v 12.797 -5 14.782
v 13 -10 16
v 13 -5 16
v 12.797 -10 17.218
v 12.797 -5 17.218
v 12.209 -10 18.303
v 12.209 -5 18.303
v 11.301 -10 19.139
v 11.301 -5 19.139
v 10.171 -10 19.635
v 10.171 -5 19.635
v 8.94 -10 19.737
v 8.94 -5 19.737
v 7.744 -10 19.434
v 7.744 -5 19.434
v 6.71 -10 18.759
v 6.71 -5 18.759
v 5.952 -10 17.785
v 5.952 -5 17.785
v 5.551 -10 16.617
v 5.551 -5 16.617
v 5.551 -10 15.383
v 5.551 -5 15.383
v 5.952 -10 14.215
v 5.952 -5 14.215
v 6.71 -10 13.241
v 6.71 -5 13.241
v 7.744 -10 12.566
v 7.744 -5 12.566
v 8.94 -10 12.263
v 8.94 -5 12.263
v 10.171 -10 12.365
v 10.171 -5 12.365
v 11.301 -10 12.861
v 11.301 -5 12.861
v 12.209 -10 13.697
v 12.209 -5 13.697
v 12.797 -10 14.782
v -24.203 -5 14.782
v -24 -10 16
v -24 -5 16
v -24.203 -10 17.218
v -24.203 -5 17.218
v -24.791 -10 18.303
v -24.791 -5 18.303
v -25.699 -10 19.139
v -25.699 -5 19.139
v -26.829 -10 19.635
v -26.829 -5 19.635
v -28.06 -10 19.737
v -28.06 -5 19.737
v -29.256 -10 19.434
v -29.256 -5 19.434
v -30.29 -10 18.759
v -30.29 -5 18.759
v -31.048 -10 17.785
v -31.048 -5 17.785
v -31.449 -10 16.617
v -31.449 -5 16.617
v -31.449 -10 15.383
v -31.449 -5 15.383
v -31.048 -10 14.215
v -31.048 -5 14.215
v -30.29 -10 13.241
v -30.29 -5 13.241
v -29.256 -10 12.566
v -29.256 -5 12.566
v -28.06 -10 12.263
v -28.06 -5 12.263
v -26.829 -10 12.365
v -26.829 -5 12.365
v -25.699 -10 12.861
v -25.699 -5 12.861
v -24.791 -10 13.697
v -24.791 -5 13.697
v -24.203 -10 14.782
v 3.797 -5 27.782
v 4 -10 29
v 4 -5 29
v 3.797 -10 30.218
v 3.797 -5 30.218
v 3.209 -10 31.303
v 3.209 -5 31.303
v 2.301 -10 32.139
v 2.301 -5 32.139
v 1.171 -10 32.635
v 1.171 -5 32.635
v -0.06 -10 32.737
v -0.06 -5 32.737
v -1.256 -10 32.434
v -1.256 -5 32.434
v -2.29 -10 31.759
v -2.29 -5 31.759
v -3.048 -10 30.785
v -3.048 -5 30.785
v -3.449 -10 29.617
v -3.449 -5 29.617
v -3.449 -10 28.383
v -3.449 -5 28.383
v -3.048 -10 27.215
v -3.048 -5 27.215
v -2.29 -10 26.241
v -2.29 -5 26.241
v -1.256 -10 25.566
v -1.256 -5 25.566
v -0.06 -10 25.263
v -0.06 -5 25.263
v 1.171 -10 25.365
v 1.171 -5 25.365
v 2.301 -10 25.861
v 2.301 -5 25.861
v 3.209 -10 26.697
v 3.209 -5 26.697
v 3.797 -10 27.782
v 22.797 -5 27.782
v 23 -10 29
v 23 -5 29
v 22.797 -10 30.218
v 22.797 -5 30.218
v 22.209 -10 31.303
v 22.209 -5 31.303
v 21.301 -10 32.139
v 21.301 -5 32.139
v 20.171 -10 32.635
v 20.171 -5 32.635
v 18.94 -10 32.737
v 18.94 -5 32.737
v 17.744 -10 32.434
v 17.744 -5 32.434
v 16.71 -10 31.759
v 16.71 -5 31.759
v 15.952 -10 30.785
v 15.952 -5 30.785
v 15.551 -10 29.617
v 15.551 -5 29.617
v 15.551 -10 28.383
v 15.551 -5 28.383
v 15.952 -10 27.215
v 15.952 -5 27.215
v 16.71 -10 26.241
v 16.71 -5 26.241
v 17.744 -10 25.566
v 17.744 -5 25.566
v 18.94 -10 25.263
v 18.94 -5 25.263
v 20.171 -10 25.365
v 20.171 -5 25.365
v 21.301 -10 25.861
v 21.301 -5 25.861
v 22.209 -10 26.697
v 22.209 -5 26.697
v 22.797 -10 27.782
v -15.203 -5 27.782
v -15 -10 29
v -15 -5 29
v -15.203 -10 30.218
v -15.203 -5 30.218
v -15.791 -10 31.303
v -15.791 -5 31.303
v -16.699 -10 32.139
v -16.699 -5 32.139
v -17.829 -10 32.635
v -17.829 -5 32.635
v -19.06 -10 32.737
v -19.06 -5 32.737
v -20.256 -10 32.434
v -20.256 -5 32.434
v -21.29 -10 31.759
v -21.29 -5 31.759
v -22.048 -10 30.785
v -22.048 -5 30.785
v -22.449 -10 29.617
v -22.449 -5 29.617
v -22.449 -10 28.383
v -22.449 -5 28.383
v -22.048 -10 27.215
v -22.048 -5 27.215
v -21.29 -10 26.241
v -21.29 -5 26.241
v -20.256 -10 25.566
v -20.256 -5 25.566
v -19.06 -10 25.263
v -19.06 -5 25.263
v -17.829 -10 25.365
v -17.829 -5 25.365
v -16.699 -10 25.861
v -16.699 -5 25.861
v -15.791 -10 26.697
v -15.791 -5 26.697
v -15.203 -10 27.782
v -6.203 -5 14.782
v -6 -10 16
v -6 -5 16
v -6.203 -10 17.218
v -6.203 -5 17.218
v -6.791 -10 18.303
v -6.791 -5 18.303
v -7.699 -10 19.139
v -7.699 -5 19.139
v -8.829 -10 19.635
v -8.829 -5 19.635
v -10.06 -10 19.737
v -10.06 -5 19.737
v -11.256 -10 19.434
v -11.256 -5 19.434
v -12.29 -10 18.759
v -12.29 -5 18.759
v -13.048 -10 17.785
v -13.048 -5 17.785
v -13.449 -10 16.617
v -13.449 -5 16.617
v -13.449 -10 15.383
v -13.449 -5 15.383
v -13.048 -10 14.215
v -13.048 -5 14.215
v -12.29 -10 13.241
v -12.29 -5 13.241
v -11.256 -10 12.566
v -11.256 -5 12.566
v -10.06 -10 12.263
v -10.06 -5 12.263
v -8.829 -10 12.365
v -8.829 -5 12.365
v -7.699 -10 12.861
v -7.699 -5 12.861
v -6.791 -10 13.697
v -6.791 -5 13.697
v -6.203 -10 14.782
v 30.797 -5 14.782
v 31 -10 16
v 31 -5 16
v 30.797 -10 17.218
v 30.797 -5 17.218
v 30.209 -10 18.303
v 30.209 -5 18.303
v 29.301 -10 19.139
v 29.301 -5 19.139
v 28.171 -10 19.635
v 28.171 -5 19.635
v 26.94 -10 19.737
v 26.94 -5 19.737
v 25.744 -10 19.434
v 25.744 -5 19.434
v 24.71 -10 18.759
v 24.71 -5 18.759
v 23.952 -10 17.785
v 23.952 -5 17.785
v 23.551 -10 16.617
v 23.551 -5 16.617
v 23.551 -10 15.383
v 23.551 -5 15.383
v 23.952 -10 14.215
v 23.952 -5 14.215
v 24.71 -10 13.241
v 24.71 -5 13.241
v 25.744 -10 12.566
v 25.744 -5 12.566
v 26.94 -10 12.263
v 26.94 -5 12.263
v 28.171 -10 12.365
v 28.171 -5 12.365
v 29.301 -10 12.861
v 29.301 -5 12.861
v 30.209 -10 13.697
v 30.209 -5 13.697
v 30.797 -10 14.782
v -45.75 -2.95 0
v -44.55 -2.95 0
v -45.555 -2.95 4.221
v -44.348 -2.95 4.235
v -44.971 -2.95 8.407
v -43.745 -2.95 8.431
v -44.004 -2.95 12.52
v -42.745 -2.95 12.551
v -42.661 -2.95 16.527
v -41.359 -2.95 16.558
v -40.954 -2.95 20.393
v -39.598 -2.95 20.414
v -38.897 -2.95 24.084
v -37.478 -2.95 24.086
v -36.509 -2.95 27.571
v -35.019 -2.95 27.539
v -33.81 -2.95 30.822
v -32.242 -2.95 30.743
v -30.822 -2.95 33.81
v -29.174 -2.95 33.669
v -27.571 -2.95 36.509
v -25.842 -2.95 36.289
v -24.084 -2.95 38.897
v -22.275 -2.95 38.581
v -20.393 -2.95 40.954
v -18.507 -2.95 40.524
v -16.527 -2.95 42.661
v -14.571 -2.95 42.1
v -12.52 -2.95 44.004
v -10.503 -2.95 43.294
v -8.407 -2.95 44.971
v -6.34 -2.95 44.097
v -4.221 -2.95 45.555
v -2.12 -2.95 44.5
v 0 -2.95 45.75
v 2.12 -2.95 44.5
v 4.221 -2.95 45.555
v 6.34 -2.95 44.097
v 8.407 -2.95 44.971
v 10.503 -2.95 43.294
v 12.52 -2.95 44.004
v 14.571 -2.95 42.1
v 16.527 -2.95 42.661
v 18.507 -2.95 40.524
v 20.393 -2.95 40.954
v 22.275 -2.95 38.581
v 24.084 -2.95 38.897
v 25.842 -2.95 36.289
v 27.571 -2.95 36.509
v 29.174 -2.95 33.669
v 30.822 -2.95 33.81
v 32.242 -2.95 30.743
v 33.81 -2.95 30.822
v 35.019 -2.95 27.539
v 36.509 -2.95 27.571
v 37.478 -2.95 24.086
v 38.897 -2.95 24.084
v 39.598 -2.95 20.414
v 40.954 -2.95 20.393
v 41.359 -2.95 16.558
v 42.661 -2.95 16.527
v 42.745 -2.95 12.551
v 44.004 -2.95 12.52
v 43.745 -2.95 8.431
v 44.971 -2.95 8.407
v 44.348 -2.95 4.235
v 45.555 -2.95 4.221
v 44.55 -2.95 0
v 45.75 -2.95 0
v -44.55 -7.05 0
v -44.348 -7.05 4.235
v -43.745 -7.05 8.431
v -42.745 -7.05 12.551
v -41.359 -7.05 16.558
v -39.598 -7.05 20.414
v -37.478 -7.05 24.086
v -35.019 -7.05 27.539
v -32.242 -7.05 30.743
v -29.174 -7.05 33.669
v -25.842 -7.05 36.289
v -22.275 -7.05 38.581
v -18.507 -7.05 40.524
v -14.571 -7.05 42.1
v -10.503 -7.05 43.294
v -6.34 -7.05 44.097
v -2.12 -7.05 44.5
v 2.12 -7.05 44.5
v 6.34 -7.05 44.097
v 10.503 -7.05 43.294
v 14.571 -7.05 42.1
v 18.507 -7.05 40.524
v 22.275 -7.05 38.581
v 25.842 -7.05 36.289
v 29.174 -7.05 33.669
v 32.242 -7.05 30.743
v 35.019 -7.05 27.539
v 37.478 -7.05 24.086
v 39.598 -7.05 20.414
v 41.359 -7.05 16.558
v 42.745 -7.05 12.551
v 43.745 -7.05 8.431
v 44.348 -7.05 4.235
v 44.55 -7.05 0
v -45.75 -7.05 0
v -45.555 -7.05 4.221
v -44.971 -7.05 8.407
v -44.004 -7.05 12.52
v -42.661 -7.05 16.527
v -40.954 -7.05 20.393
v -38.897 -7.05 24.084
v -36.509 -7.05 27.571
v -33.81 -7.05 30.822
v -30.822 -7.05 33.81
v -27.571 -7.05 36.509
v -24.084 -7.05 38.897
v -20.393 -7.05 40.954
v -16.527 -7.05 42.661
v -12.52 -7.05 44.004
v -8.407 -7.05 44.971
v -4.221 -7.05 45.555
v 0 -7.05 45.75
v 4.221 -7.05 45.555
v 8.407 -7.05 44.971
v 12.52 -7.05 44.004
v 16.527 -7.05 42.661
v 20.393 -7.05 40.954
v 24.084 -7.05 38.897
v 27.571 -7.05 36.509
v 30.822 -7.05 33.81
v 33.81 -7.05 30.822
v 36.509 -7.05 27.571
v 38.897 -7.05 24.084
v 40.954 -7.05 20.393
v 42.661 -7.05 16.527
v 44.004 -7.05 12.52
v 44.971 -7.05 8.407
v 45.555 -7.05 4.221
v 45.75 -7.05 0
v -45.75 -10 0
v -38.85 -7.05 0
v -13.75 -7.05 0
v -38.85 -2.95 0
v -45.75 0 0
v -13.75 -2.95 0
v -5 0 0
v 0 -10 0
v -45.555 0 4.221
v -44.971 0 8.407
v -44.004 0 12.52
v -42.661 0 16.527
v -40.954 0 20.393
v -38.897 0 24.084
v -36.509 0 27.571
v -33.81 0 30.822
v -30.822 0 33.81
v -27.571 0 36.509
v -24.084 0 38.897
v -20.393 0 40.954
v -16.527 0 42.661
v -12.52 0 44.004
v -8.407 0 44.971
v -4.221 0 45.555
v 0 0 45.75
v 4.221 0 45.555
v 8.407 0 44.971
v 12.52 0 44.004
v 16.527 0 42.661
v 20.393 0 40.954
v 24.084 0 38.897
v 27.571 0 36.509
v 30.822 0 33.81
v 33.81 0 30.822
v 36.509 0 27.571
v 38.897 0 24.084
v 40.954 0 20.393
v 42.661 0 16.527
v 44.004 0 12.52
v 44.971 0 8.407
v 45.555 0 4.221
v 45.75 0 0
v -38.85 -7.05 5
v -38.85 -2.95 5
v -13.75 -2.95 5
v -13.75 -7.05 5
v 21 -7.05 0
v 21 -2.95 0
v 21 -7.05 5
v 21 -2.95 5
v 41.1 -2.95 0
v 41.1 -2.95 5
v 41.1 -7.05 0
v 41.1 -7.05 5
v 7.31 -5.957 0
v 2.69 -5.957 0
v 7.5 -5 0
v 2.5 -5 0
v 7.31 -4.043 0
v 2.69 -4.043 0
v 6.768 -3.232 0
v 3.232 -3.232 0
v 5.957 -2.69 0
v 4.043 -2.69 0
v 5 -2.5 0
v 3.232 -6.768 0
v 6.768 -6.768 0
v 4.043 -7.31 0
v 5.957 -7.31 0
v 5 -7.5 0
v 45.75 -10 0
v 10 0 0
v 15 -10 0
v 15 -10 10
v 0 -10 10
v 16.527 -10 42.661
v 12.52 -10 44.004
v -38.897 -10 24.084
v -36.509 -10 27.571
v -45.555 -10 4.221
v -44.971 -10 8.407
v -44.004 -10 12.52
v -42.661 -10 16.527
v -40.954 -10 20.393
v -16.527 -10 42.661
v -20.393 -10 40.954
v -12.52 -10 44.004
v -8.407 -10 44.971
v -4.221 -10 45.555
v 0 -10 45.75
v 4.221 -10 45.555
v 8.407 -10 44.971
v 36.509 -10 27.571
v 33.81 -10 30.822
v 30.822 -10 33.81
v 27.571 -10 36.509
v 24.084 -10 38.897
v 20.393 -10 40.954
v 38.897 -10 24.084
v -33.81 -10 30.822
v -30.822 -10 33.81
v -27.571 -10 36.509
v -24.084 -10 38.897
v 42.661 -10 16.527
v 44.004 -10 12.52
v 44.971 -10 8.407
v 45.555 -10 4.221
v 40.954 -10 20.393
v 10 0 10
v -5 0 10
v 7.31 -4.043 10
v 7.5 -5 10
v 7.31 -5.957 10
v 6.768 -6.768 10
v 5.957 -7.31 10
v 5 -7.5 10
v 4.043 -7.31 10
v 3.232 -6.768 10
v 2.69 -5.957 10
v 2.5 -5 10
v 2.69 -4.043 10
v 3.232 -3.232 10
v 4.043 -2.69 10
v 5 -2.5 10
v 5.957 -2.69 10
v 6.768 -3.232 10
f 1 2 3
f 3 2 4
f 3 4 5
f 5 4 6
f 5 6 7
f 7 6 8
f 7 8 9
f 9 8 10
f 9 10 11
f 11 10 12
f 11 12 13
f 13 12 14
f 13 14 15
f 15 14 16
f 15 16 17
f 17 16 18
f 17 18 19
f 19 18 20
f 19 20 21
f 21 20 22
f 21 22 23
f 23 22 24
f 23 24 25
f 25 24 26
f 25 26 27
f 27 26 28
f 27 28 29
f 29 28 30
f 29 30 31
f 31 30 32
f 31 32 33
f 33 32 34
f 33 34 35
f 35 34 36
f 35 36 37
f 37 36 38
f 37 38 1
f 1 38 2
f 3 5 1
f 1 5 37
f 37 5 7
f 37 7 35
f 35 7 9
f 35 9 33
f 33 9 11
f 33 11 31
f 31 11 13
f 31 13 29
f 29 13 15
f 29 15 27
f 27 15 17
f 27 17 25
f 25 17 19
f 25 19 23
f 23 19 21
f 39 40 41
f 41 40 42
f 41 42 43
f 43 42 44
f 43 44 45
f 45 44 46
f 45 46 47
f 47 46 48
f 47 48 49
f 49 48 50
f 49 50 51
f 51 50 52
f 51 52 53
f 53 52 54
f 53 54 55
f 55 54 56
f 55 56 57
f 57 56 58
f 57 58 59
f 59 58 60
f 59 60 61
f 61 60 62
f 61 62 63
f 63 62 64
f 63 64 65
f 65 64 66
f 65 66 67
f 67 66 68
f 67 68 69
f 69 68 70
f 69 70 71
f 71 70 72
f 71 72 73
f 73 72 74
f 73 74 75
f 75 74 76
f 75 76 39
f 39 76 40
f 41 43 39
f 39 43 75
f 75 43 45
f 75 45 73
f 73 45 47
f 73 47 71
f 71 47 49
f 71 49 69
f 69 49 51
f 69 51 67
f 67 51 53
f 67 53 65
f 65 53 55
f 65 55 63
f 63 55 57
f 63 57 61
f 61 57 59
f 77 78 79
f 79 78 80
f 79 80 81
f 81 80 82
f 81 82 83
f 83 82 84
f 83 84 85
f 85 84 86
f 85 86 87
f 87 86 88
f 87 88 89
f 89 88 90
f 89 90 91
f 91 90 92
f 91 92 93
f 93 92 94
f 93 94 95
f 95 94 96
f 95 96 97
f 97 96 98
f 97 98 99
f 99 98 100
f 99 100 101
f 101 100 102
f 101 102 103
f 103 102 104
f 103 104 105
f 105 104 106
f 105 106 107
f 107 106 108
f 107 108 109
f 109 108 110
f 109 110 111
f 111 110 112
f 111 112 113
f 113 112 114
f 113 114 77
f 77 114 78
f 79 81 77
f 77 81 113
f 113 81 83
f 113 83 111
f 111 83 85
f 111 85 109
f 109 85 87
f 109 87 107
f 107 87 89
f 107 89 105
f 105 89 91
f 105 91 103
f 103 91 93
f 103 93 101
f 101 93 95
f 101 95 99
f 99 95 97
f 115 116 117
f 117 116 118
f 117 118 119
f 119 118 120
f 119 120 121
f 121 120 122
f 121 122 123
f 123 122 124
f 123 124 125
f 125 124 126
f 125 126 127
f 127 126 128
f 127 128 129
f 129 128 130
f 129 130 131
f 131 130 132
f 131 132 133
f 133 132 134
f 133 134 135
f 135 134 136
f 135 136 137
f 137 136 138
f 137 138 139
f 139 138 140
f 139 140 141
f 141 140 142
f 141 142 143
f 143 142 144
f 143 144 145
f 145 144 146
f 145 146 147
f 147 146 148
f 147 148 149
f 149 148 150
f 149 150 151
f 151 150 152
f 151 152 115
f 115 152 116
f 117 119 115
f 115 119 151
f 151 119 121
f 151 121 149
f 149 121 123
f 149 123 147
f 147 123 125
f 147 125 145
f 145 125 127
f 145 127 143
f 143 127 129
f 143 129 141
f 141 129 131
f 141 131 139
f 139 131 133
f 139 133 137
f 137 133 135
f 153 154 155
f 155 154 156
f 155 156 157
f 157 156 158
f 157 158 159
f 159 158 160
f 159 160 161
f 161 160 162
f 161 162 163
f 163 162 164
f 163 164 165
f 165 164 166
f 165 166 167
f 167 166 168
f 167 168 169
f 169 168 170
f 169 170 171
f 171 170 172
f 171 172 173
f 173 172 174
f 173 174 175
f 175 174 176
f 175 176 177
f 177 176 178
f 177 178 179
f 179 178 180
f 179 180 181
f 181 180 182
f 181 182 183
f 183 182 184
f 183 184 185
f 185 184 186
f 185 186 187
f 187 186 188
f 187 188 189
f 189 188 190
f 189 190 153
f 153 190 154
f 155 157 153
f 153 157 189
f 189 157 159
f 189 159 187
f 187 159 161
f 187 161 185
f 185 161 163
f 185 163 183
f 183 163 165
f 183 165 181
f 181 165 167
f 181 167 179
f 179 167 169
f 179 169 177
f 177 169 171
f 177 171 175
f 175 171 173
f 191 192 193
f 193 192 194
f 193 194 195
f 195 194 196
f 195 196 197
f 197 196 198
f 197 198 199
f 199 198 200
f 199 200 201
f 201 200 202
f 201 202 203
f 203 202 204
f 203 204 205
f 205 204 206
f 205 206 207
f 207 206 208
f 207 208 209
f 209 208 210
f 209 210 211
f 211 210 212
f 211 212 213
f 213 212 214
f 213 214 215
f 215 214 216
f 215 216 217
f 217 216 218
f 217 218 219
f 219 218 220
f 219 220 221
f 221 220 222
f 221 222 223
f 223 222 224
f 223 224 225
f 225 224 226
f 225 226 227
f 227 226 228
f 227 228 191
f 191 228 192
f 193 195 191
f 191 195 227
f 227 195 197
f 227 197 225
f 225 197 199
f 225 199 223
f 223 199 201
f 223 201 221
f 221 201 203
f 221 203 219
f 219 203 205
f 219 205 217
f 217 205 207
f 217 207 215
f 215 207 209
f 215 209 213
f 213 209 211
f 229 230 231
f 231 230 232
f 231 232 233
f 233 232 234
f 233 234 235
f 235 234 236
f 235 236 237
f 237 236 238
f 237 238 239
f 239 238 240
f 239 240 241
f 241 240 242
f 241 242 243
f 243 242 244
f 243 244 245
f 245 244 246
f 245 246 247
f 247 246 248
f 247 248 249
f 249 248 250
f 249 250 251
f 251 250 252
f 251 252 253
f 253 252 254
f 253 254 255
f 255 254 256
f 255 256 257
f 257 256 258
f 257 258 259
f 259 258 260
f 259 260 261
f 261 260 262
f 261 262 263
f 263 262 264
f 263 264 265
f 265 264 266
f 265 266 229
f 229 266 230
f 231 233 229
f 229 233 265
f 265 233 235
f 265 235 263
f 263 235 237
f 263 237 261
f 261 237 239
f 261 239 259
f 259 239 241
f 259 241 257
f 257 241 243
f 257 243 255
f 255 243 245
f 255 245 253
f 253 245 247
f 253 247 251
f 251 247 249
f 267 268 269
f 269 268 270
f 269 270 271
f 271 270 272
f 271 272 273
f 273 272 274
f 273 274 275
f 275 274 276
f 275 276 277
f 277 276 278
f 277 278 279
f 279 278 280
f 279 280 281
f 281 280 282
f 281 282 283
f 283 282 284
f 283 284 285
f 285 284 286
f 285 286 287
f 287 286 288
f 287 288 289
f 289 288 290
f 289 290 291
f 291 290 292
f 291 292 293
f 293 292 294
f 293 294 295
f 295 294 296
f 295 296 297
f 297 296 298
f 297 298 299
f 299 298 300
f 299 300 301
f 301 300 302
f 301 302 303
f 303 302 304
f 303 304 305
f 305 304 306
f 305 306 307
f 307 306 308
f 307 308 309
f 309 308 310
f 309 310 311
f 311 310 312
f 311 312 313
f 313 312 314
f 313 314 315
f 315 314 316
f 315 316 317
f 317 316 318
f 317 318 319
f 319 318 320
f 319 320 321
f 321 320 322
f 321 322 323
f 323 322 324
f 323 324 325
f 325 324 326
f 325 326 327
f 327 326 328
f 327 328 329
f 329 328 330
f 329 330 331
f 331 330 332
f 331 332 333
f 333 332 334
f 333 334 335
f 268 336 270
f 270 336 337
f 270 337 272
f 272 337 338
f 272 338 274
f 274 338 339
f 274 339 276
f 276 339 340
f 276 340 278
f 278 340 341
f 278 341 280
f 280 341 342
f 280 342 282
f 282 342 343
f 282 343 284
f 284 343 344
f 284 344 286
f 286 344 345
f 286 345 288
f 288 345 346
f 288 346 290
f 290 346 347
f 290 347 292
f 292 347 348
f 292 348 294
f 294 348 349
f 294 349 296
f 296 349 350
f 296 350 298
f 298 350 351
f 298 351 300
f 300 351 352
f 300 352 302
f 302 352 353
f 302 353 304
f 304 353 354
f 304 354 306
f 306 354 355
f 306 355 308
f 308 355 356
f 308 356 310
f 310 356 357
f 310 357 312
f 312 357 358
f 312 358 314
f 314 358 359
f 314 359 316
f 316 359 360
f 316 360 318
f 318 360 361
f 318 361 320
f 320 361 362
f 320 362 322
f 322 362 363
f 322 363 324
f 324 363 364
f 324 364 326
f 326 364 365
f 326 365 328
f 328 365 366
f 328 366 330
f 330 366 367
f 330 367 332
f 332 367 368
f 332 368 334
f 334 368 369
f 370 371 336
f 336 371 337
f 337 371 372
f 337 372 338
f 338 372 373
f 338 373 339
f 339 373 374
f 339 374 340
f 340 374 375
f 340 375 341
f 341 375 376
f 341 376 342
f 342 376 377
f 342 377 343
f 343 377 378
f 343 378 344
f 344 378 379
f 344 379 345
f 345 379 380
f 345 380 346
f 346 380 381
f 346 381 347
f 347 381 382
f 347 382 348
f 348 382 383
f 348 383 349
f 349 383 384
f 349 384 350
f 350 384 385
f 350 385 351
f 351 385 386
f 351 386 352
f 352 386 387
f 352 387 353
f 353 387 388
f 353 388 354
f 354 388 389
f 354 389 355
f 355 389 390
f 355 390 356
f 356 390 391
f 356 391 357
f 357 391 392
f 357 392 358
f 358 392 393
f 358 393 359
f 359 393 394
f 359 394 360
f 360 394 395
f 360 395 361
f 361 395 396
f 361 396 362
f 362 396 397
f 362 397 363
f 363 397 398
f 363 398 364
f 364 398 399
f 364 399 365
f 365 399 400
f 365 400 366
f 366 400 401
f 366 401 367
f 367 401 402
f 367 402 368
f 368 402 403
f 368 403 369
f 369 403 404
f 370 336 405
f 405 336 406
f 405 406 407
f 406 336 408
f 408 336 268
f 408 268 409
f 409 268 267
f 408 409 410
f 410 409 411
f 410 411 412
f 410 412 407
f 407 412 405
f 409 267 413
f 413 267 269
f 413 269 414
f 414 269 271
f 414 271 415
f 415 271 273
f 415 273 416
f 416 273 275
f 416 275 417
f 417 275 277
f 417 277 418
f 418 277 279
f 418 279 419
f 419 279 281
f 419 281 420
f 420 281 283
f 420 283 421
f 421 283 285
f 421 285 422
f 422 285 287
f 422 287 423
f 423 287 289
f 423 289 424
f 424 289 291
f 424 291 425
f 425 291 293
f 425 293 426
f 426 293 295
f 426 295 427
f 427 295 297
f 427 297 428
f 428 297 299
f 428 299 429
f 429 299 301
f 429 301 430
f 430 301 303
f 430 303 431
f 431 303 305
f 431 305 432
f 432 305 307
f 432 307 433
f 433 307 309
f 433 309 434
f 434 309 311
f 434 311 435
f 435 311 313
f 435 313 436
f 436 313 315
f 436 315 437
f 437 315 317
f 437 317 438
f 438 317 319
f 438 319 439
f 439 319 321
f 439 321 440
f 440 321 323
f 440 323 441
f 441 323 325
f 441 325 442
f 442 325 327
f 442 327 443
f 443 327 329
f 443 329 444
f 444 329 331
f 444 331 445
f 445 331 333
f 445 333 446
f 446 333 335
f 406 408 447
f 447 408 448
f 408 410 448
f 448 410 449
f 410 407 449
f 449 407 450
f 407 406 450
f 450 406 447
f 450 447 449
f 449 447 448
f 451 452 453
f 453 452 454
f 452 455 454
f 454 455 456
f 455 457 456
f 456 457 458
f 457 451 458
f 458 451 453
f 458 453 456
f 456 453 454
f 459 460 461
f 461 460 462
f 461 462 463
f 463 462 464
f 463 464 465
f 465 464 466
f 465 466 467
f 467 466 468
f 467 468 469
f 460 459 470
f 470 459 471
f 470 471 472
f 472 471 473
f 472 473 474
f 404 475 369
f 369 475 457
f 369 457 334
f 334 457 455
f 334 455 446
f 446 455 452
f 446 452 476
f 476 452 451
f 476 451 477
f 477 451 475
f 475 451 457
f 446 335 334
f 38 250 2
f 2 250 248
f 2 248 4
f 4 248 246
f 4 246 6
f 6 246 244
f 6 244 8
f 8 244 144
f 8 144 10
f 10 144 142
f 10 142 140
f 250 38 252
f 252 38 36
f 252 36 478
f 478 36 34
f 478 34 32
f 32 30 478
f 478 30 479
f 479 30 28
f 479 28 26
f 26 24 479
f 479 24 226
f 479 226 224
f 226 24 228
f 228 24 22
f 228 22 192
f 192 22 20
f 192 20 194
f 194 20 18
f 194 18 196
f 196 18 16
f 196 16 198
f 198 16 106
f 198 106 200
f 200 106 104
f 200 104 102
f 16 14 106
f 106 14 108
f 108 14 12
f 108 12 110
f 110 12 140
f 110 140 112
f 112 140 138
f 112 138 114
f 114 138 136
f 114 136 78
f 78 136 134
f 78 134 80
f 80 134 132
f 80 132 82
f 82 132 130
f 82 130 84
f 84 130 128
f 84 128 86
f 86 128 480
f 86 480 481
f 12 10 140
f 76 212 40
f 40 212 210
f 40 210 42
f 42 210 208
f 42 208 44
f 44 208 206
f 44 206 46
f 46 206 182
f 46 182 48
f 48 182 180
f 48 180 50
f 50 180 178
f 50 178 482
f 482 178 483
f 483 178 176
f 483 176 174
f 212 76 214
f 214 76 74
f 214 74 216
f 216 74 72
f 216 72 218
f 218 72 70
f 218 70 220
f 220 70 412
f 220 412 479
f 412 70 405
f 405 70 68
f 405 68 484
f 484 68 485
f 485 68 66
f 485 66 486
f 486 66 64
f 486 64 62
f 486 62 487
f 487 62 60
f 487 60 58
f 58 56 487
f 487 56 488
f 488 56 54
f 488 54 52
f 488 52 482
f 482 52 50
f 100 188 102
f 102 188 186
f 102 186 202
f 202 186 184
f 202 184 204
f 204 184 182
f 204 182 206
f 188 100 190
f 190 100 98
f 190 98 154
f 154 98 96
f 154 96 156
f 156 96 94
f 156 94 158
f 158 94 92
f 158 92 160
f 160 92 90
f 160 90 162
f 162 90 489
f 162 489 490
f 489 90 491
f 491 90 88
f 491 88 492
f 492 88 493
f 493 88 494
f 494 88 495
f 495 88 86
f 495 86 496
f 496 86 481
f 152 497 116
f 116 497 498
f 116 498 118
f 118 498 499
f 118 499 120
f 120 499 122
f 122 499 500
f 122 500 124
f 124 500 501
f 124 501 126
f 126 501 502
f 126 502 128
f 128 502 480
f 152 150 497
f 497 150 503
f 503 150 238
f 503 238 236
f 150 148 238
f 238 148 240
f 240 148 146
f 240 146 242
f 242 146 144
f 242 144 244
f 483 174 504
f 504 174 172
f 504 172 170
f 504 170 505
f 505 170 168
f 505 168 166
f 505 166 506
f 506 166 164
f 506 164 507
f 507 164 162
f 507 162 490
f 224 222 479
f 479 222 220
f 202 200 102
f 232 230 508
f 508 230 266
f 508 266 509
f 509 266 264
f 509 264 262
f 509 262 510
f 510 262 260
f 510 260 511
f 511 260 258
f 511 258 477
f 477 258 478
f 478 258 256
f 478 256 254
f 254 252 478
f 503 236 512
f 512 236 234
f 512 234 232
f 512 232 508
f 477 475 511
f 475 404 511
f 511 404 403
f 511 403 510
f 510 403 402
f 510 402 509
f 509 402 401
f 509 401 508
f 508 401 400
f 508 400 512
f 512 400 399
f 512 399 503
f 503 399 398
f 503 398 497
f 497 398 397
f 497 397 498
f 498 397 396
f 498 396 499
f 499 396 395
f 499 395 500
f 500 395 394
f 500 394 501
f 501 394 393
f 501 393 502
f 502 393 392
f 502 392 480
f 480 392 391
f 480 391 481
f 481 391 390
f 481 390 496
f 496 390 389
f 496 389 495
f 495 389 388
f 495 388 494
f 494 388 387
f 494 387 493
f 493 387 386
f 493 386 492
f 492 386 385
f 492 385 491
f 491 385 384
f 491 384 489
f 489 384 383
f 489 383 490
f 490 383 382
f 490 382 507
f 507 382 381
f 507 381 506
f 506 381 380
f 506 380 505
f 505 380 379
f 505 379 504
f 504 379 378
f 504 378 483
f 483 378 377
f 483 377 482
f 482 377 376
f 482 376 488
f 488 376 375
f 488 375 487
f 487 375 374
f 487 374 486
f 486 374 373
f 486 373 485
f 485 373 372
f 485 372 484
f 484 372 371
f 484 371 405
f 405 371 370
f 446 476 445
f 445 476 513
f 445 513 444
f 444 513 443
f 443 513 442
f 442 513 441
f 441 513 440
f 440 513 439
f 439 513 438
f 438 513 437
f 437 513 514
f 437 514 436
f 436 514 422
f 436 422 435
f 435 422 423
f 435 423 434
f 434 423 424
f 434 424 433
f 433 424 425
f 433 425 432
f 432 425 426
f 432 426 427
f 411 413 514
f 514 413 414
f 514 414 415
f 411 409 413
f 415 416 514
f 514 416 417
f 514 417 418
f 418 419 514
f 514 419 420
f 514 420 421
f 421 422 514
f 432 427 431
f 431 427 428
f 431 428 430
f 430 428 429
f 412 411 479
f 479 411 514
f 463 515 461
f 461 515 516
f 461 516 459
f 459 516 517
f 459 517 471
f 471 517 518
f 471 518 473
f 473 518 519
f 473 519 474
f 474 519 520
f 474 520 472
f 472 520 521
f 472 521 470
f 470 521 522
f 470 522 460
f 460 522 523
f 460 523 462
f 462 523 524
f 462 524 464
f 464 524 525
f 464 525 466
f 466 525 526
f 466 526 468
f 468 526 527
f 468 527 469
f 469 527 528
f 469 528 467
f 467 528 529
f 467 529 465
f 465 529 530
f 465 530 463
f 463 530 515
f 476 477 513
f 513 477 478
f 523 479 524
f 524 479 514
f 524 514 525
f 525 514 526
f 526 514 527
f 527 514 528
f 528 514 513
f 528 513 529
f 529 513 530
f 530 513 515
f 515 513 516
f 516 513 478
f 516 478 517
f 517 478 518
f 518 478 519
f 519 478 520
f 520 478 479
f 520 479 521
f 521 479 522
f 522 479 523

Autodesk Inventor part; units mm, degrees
ref_plane "YZ Plane" through (0, 0, 0) normal (1, 0, 0) x (0, 1, 0)
ref_plane "XZ Plane" through (0, 0, 0) normal (0, 1, 0) x (-1, 0, 0)
ref_plane "XY Plane" through (0, 0, 0) normal (0, 0, 1) x (1, 0, 0)
sketch "스케치1" plane through (0, 0, 0) normal (0, 1, 0) x (-1, 0, 0)
  line L0 (-10, 10) -> (10, 10)
  line L1 (10, 10) -> (10, -10)
  line L2 (10, -10) -> (-10, -10)
  line L3 (-10, -10) -> (-10, 10)
  line L4 (-10, 10) -> (10, -10) construction
  line L5 (10, 10) -> (-10, -10) construction
  line L6 (-10, -10) -> (-15, -10)
  line L7 (-15, -10) -> (-15, 10)
  line L8 (-15, 10) -> (-10, 10)
  line L9 (-10, 10) -> (-10, -10)
  circle A0 centre (0, 0) radius 45.75
  dimension "d0" = 20
  dimension "d1" = 20
  dimension "d2" = 5
  dimension "d17" = 91.5
ref_plane "작업 평면2" through (-10, 20, -10) normal (-1, 0, 0) x (0, 0, 1)
sketch "스케치2" plane through (-10, 20, -10) normal (-1, 0, 0) x (0, 0, 1)
  line L0 (20, -100) -> (20, 0) projected
  line L1 (0, 0) -> (20, 0) projected
  line L2 (0, 0) -> (0, -100) projected
  line L3 (20, -100) -> (0, -100) projected
  circle A0 centre (10, -91) radius 4.5
  point P0 (10, -20)
  dimension "d7" = 9
  dimension "d8" = 9
ref_plane "작업 평면1" through (-10, 20, 10) normal (0, 0, 1) x (1, 0, 0)
sketch "스케치3" plane through (-10, 20, 10) normal (0, 0, 1) x (1, 0, 0)
  line L0 (20, -20) -> (25, -20) projected
  line L1 (25, -20) -> (25, 0) projected
  line L2 (0, 0) -> (25, 0) projected
  line L3 (0, -100) -> (0, 0) projected
  line L4 (20, -100) -> (0, -100) projected
  line L5 (20, -20) -> (20, -100) projected
  line L6 (25, -20) -> (25, 0) projected
  line L7 (25, 0) -> (0, 0) projected
  arc A0 (25, -20) -> (20, 0) centre (-10.6945, -18.2986) ccw
  line L8 (20, 0) -> (25, 0)
  line L9 (25, 0) -> (25, -20)
  point P0 (10, -20)
  point P1 (20, 0)
  point P2 (25, -16.5972)
extrude "돌출4" [suppressed]
extrude "돌출5" [suppressed]
extrude "돌출6" add sketch "스케치1" against normal blind 10
ref_plane "작업 평면3" through (10, 0, -10) normal (0, 0, 1) x (1, 0, 0)
sketch "스케치4" plane through (10, 0, -10) normal (0, 0, 1) x (1, 0, 0)
  line L0 (0, -5) -> (-10, -5) projected
  line L1 (-10, -5) -> (-10, -80) projected
  line L2 (0, -80) -> (-10, -80) projected
  line L3 (0, -5) -> (0, -80) projected
  line L4 (-10, 0) -> (0, 0) projected
  line L5 (0, 0) -> (5, 0) projected
  line L6 (5, 0) -> (5, 3.4028) projected
  arc A0 (5, 3.4028) -> (0, 20) centre (-30.6945, 1.7014) ccw projected
  line L7 (-10, 20) -> (0, 20) projected
  line L8 (-10, 20) -> (-10, 0) projected
  line L9 (0, -5) -> (5, -5)
  line L10 (5, -5) -> (5, 0)
  line L11 (5, 0) -> (0, 0)
  line L12 (0, 0) -> (0, -5)
  line L13 (-55.75, -5) -> (35.75, -5) projected
  line L14 (-10, 0) -> (-15, 0)
  line L15 (-15, 0) -> (-15, -5)
  line L16 (-15, -5) -> (-10, -5)
  line L17 (-10, -5) -> (-10, 0)
  line L18 (-15, 0) -> (-10, -5)
  line L19 (0, 0) -> (5, -5)
  dimension "d20" = 5
sketch "스케치5" plane through (0, 0, 0) normal (0, 1, 0) x (1, 0, 0)
  circle A0 centre (0, 0) radius 45.75 projected
  line L0 (15, -10) -> (-10, -10) projected
  line L1 (-10, 10) -> (15, 10) projected
  line L2 (-12.2866, 10.5) -> (15, 10.5)
  line L3 (15, 10.5) -> (15, -10.5)
  line L4 (15, -10.5) -> (-12.2866, -10.5)
  line L5 (-12.2866, -10.5) -> (-12.2866, 10.5)
  line L6 (15, 10) -> (15, -10) projected
  line L7 (-10, -10) -> (-10, 10) projected
  dimension "d22" = 0.5
extrude "돌출7" [suppressed]
sketch "스케치6" plane through (-12.2866, 0, -10.5) normal (0, 0, 1) x (1, 0, 0)
  line L0 (7.2866, 0) -> (12.2866, -5) projected
  line L1 (7.2866, 0) -> (7.2866, -5) projected
  line L2 (7.2866, -5) -> (12.2866, -5) projected
  line L3 (22.2866, 0) -> (27.2866, -5) projected
  line L4 (22.2866, 0) -> (22.2866, -5) projected
  line L5 (22.2866, -5) -> (27.2866, -5) projected
  point P0 (12.2866, 0)
extrude "돌출8" [suppressed]
extrude "돌출9" add sketch "스케치4" along normal blind 20.5 and the other way blind 0.5 contours L19 L5 L10
ref_plane "작업 평면4" through (-12.2866, -5, -10.5) normal (0, 0, 1) x (1, 0, 0)
sketch "스케치7" plane through (-12.2866, -5, -10.5) normal (0, 0, 1) x (1, 0, 0)
  line L0 (7.2866, 0) -> (7.2866, 5) projected
  line L1 (0, 5) -> (7.2866, 5) projected
  line L2 (0, 5) -> (0, 0) projected
  line L3 (7.2866, 0) -> (0, 0) projected
  line L4 (0, 5) -> (7.2866, 5)
  line L5 (7.2866, 5) -> (7.2866, 0)
  line L6 (7.2866, 0) -> (0, 0)
  line L7 (0, 0) -> (0, 5)
  point P0 (12.2866, 5)
extrude "돌출10" add sketch "스케치7" along normal blind 21
sketch "스케치8" plane through (-5, 0, -10) normal (0, 0, 1) x (1, 0, 0)
  line L0 (0, 0) -> (0, -5) projected
  line L1 (20, -10) -> (-5, -10) projected
  line L2 (20, -5) -> (15, 0) projected
  line L3 (0, 0) -> (15, 0) projected
  line L4 (0, 0) -> (5, 0)
  line L5 (5, 0) -> (5, -10)
  line L6 (5, -10) -> (0, -10)
  line L7 (0, -10) -> (0, 0)
  line L8 (0, 0) -> (5, -10)
  line L9 (0, -5) -> (-5, -5) projected
  line L10 (-5, -5) -> (-5, -10) projected
  line L11 (20, -5) -> (20, -10) projected
  dimension "d33" = 5
extrude "돌출11" add sketch "스케치8" along normal blind 21
sketch "스케치9" plane through (0, 0, 0) normal (0, 1, 0) x (1, 0, 0)
  line L0 (10, -10) -> (-10, -10) projected
  line L1 (10, 10) -> (10, -10) projected
  line L2 (64.05, 10) -> (-64.05, 10) projected
  line L3 (-10, -64.05) -> (-10, 64.05) projected
  line L4 (-10, -10) -> (-10, 10) projected
  line L5 (-10, 10) -> (10, 10) projected
  line L6 (10, -10) -> (0, -10)
  line L7 (0, -10) -> (0, 10)
  line L8 (0, 10) -> (10, 10)
  line L9 (10, 10) -> (10, -10)
  point P0 (0, 0)
extrude "돌출12" cut sketch "스케치9" against normal blind 10 contours L0 L7 L2 L1
sketch "스케치10" plane through (10, 0, 10) normal (0, 0, -1) x (-1, 0, 0)
  line L0 (-5, 0) -> (0, 0) projected
  line L1 (0, 0) -> (0, -10) projected
  line L2 (-35.75, -10) -> (55.75, -10) projected
  line L3 (0, 0) -> (-5, 0)
  line L4 (-5, 0) -> (-5, -10)
  line L5 (-5, -10) -> (0, -10)
  line L6 (0, -10) -> (0, 0)
  line L7 (0, 0) -> (-5, -10)
  line L8 (10, 0) -> (15, 0)
  line L9 (15, 0) -> (15, -10)
  line L10 (15, -10) -> (10, -10)
  line L11 (10, -10) -> (10, 0)
  line L12 (15, 0) -> (10, -10)
  dimension "d38" = 5
extrude "돌출13" cut sketch "스케치10" along normal blind 20 contours L11 L8 L12
extrude "돌출14" cut sketch "스케치10" along normal blind 20 contours L1 L2 L7
sketch "스케치11" plane through (10, 0, 10) normal (0, 0, -1) x (-1, 0, 0)
  line L0 (-35.75, -10) -> (55.75, -10) projected
  line L1 (55.75, 0) -> (-35.75, 0) projected
  line L2 (0, 0) -> (0, -10) projected
  line L3 (10, -10) -> (10, 0) projected
  line L4 (0, 0) -> (10, 0)
  line L5 (10, 0) -> (10, -10)
  line L6 (10, -10) -> (0, -10)
  line L7 (0, -10) -> (0, 0)
  circle A0 centre (5, -5) radius 2.5
  dimension "d43" = 5
extrude "돌출15" add sketch "스케치11" along normal blind 20 contours A0
sketch "스케치12" plane through (0, 0, 0) normal (0, 0, 1) x (1, 0, 0)
  line L0 (-45.75, -10) -> (45.75, -10) projected
  line L1 (45.75, 0) -> (-45.75, 0) projected
  line L2 (-45.75, -10) -> (45.75, -10) projected
  line L3 (-45.75, 0) -> (45.75, 0)
  line L4 (45.75, 0) -> (45.75, -10)
  line L5 (45.75, -10) -> (-45.75, -10)
  line L6 (-45.75, -10) -> (-45.75, 0)
  point P0 (0, 0)
extrude "돌출16" cut sketch "스케치12" against normal blind 50
sketch "스케치13" plane through (0, 0, 0) normal (0, 0, -1) x (-1, 0, 0)
  line L0 (13.75, -2.95) -> (38.85, -2.95)
  line L1 (38.85, -2.95) -> (38.85, -7.05)
  line L2 (38.85, -7.05) -> (13.75, -7.05)
  line L3 (13.75, -7.05) -> (13.75, -2.95)
  line L4 (-41.1, -2.95) -> (-21, -2.95)
  line L5 (-21, -2.95) -> (-21, -7.05)
  line L6 (-21, -7.05) -> (-41.1, -7.05)
  line L7 (-41.1, -7.05) -> (-41.1, -2.95)
  line L8 (45.75, 0) -> (45.75, -10) projected
  line L9 (-45.75, 0) -> (-45.75, -10) projected
  line L10 (-45.75, 0) -> (-10, 0) projected
  line L11 (5, 0) -> (45.75, 0) projected
  point P0 (0, 0)
  dimension "d48" = 25.1
  dimension "d49" = 4.1
  dimension "d50" = 20.1
  dimension "d51" = 4.1
  dimension "d52" = 6.9
  dimension "d53" = 4.65
  dimension "d54" = 2.95
  dimension "d55" = 2.95
extrude "돌출17" cut sketch "스케치13" against normal blind 5
sketch "스케치14" plane through (0, 0, 0) normal (0, 0, -1) x (-1, 0, 0)
  line L0 (38.85, -2.95) -> (38.85, -7.05) projected
  line L1 (38.85, -7.05) -> (13.75, -7.05) projected
  line L2 (13.75, -7.05) -> (13.75, -2.95) projected
  line L3 (13.75, -2.95) -> (38.85, -2.95) projected
  line L4 (0, -10) -> (5, 0) projected
  line L5 (45.75, -10) -> (0, -10) projected
  line L6 (45.75, 0) -> (45.75, -10) projected
  line L7 (5, 0) -> (45.75, 0) projected
  line L8 (45.75, -2.95) -> (44.55, -2.95)
  line L9 (44.55, -2.95) -> (44.55, -7.05)
  line L10 (44.55, -7.05) -> (45.75, -7.05)
  line L11 (45.75, -7.05) -> (45.75, -2.95)
  line L12 (0, -12) -> (0, 2) projected
  point P0 (0, 0)
  dimension "d58" = 1.2
revolve "회전1" cut sketch "스케치14" angle 360 about axis through (0, -10, 0) along (0, 1, 0) contours L10 L9 L8 L6
sketch "스케치15" plane through (0, 0, 0) normal (0, 1, 0) x (1, 0, 0)
  circle A0 centre (-27.75, -16) radius 3.75
  circle A1 centre (-9.75, -16) radius 3.75
  circle A2 centre (9.25, -16) radius 3.75
  circle A3 centre (27.25, -16) radius 3.75
  circle A4 centre (-18.75, -29) radius 3.75
  circle A5 centre (0.25, -29) radius 3.75
  circle A6 centre (19.25, -29) radius 3.75
  line L0 (-44.55, 0) -> (-45.75, 0) projected
  line L1 (-45.75, 0) -> (-45.75, -49.8385)
  arc A7 (-45.75, 0) -> (45.75, 0) centre (0, 0) ccw projected
  line L2 (64.05, -10) -> (-64.05, -10) projected
  dimension "d60" = 7.5
  dimension "d61" = 7.5
  dimension "d62" = 7.5
  dimension "d63" = 7.5
  dimension "d64" = 7.5
  dimension "d65" = 7.5
  dimension "d66" = 7.5
  dimension "d67" = 18
  dimension "d68" = 18
  dimension "d69" = 19
  dimension "d70" = 18
  dimension "d71" = 9
  dimension "d72" = 19
  dimension "d73" = 19
  dimension "d74" = 13
  dimension "d75" = 13
  dimension "d76" = 13
  dimension "d77" = 6
  dimension "d78" = 6
sketch "스케치16" plane through (0, -10, 0) normal (0, -1, 0) x (1, 0, 0)
  circle A0 centre (27.25, 16) radius 3.75 projected
  circle A1 centre (9.25, 16) radius 3.75 projected
  circle A2 centre (-9.75, 16) radius 3.75 projected
  circle A3 centre (-27.75, 16) radius 3.75 projected
  circle A4 centre (-18.75, 29) radius 3.75 projected
  circle A5 centre (0.25, 29) radius 3.75 projected
  circle A6 centre (19.25, 29) radius 3.75 projected
  point P0 (0, 0)
extrude "돌출19" cut sketch "스케치16" against normal blind 5
properties part number "new탄두윗판구멍1_2"
